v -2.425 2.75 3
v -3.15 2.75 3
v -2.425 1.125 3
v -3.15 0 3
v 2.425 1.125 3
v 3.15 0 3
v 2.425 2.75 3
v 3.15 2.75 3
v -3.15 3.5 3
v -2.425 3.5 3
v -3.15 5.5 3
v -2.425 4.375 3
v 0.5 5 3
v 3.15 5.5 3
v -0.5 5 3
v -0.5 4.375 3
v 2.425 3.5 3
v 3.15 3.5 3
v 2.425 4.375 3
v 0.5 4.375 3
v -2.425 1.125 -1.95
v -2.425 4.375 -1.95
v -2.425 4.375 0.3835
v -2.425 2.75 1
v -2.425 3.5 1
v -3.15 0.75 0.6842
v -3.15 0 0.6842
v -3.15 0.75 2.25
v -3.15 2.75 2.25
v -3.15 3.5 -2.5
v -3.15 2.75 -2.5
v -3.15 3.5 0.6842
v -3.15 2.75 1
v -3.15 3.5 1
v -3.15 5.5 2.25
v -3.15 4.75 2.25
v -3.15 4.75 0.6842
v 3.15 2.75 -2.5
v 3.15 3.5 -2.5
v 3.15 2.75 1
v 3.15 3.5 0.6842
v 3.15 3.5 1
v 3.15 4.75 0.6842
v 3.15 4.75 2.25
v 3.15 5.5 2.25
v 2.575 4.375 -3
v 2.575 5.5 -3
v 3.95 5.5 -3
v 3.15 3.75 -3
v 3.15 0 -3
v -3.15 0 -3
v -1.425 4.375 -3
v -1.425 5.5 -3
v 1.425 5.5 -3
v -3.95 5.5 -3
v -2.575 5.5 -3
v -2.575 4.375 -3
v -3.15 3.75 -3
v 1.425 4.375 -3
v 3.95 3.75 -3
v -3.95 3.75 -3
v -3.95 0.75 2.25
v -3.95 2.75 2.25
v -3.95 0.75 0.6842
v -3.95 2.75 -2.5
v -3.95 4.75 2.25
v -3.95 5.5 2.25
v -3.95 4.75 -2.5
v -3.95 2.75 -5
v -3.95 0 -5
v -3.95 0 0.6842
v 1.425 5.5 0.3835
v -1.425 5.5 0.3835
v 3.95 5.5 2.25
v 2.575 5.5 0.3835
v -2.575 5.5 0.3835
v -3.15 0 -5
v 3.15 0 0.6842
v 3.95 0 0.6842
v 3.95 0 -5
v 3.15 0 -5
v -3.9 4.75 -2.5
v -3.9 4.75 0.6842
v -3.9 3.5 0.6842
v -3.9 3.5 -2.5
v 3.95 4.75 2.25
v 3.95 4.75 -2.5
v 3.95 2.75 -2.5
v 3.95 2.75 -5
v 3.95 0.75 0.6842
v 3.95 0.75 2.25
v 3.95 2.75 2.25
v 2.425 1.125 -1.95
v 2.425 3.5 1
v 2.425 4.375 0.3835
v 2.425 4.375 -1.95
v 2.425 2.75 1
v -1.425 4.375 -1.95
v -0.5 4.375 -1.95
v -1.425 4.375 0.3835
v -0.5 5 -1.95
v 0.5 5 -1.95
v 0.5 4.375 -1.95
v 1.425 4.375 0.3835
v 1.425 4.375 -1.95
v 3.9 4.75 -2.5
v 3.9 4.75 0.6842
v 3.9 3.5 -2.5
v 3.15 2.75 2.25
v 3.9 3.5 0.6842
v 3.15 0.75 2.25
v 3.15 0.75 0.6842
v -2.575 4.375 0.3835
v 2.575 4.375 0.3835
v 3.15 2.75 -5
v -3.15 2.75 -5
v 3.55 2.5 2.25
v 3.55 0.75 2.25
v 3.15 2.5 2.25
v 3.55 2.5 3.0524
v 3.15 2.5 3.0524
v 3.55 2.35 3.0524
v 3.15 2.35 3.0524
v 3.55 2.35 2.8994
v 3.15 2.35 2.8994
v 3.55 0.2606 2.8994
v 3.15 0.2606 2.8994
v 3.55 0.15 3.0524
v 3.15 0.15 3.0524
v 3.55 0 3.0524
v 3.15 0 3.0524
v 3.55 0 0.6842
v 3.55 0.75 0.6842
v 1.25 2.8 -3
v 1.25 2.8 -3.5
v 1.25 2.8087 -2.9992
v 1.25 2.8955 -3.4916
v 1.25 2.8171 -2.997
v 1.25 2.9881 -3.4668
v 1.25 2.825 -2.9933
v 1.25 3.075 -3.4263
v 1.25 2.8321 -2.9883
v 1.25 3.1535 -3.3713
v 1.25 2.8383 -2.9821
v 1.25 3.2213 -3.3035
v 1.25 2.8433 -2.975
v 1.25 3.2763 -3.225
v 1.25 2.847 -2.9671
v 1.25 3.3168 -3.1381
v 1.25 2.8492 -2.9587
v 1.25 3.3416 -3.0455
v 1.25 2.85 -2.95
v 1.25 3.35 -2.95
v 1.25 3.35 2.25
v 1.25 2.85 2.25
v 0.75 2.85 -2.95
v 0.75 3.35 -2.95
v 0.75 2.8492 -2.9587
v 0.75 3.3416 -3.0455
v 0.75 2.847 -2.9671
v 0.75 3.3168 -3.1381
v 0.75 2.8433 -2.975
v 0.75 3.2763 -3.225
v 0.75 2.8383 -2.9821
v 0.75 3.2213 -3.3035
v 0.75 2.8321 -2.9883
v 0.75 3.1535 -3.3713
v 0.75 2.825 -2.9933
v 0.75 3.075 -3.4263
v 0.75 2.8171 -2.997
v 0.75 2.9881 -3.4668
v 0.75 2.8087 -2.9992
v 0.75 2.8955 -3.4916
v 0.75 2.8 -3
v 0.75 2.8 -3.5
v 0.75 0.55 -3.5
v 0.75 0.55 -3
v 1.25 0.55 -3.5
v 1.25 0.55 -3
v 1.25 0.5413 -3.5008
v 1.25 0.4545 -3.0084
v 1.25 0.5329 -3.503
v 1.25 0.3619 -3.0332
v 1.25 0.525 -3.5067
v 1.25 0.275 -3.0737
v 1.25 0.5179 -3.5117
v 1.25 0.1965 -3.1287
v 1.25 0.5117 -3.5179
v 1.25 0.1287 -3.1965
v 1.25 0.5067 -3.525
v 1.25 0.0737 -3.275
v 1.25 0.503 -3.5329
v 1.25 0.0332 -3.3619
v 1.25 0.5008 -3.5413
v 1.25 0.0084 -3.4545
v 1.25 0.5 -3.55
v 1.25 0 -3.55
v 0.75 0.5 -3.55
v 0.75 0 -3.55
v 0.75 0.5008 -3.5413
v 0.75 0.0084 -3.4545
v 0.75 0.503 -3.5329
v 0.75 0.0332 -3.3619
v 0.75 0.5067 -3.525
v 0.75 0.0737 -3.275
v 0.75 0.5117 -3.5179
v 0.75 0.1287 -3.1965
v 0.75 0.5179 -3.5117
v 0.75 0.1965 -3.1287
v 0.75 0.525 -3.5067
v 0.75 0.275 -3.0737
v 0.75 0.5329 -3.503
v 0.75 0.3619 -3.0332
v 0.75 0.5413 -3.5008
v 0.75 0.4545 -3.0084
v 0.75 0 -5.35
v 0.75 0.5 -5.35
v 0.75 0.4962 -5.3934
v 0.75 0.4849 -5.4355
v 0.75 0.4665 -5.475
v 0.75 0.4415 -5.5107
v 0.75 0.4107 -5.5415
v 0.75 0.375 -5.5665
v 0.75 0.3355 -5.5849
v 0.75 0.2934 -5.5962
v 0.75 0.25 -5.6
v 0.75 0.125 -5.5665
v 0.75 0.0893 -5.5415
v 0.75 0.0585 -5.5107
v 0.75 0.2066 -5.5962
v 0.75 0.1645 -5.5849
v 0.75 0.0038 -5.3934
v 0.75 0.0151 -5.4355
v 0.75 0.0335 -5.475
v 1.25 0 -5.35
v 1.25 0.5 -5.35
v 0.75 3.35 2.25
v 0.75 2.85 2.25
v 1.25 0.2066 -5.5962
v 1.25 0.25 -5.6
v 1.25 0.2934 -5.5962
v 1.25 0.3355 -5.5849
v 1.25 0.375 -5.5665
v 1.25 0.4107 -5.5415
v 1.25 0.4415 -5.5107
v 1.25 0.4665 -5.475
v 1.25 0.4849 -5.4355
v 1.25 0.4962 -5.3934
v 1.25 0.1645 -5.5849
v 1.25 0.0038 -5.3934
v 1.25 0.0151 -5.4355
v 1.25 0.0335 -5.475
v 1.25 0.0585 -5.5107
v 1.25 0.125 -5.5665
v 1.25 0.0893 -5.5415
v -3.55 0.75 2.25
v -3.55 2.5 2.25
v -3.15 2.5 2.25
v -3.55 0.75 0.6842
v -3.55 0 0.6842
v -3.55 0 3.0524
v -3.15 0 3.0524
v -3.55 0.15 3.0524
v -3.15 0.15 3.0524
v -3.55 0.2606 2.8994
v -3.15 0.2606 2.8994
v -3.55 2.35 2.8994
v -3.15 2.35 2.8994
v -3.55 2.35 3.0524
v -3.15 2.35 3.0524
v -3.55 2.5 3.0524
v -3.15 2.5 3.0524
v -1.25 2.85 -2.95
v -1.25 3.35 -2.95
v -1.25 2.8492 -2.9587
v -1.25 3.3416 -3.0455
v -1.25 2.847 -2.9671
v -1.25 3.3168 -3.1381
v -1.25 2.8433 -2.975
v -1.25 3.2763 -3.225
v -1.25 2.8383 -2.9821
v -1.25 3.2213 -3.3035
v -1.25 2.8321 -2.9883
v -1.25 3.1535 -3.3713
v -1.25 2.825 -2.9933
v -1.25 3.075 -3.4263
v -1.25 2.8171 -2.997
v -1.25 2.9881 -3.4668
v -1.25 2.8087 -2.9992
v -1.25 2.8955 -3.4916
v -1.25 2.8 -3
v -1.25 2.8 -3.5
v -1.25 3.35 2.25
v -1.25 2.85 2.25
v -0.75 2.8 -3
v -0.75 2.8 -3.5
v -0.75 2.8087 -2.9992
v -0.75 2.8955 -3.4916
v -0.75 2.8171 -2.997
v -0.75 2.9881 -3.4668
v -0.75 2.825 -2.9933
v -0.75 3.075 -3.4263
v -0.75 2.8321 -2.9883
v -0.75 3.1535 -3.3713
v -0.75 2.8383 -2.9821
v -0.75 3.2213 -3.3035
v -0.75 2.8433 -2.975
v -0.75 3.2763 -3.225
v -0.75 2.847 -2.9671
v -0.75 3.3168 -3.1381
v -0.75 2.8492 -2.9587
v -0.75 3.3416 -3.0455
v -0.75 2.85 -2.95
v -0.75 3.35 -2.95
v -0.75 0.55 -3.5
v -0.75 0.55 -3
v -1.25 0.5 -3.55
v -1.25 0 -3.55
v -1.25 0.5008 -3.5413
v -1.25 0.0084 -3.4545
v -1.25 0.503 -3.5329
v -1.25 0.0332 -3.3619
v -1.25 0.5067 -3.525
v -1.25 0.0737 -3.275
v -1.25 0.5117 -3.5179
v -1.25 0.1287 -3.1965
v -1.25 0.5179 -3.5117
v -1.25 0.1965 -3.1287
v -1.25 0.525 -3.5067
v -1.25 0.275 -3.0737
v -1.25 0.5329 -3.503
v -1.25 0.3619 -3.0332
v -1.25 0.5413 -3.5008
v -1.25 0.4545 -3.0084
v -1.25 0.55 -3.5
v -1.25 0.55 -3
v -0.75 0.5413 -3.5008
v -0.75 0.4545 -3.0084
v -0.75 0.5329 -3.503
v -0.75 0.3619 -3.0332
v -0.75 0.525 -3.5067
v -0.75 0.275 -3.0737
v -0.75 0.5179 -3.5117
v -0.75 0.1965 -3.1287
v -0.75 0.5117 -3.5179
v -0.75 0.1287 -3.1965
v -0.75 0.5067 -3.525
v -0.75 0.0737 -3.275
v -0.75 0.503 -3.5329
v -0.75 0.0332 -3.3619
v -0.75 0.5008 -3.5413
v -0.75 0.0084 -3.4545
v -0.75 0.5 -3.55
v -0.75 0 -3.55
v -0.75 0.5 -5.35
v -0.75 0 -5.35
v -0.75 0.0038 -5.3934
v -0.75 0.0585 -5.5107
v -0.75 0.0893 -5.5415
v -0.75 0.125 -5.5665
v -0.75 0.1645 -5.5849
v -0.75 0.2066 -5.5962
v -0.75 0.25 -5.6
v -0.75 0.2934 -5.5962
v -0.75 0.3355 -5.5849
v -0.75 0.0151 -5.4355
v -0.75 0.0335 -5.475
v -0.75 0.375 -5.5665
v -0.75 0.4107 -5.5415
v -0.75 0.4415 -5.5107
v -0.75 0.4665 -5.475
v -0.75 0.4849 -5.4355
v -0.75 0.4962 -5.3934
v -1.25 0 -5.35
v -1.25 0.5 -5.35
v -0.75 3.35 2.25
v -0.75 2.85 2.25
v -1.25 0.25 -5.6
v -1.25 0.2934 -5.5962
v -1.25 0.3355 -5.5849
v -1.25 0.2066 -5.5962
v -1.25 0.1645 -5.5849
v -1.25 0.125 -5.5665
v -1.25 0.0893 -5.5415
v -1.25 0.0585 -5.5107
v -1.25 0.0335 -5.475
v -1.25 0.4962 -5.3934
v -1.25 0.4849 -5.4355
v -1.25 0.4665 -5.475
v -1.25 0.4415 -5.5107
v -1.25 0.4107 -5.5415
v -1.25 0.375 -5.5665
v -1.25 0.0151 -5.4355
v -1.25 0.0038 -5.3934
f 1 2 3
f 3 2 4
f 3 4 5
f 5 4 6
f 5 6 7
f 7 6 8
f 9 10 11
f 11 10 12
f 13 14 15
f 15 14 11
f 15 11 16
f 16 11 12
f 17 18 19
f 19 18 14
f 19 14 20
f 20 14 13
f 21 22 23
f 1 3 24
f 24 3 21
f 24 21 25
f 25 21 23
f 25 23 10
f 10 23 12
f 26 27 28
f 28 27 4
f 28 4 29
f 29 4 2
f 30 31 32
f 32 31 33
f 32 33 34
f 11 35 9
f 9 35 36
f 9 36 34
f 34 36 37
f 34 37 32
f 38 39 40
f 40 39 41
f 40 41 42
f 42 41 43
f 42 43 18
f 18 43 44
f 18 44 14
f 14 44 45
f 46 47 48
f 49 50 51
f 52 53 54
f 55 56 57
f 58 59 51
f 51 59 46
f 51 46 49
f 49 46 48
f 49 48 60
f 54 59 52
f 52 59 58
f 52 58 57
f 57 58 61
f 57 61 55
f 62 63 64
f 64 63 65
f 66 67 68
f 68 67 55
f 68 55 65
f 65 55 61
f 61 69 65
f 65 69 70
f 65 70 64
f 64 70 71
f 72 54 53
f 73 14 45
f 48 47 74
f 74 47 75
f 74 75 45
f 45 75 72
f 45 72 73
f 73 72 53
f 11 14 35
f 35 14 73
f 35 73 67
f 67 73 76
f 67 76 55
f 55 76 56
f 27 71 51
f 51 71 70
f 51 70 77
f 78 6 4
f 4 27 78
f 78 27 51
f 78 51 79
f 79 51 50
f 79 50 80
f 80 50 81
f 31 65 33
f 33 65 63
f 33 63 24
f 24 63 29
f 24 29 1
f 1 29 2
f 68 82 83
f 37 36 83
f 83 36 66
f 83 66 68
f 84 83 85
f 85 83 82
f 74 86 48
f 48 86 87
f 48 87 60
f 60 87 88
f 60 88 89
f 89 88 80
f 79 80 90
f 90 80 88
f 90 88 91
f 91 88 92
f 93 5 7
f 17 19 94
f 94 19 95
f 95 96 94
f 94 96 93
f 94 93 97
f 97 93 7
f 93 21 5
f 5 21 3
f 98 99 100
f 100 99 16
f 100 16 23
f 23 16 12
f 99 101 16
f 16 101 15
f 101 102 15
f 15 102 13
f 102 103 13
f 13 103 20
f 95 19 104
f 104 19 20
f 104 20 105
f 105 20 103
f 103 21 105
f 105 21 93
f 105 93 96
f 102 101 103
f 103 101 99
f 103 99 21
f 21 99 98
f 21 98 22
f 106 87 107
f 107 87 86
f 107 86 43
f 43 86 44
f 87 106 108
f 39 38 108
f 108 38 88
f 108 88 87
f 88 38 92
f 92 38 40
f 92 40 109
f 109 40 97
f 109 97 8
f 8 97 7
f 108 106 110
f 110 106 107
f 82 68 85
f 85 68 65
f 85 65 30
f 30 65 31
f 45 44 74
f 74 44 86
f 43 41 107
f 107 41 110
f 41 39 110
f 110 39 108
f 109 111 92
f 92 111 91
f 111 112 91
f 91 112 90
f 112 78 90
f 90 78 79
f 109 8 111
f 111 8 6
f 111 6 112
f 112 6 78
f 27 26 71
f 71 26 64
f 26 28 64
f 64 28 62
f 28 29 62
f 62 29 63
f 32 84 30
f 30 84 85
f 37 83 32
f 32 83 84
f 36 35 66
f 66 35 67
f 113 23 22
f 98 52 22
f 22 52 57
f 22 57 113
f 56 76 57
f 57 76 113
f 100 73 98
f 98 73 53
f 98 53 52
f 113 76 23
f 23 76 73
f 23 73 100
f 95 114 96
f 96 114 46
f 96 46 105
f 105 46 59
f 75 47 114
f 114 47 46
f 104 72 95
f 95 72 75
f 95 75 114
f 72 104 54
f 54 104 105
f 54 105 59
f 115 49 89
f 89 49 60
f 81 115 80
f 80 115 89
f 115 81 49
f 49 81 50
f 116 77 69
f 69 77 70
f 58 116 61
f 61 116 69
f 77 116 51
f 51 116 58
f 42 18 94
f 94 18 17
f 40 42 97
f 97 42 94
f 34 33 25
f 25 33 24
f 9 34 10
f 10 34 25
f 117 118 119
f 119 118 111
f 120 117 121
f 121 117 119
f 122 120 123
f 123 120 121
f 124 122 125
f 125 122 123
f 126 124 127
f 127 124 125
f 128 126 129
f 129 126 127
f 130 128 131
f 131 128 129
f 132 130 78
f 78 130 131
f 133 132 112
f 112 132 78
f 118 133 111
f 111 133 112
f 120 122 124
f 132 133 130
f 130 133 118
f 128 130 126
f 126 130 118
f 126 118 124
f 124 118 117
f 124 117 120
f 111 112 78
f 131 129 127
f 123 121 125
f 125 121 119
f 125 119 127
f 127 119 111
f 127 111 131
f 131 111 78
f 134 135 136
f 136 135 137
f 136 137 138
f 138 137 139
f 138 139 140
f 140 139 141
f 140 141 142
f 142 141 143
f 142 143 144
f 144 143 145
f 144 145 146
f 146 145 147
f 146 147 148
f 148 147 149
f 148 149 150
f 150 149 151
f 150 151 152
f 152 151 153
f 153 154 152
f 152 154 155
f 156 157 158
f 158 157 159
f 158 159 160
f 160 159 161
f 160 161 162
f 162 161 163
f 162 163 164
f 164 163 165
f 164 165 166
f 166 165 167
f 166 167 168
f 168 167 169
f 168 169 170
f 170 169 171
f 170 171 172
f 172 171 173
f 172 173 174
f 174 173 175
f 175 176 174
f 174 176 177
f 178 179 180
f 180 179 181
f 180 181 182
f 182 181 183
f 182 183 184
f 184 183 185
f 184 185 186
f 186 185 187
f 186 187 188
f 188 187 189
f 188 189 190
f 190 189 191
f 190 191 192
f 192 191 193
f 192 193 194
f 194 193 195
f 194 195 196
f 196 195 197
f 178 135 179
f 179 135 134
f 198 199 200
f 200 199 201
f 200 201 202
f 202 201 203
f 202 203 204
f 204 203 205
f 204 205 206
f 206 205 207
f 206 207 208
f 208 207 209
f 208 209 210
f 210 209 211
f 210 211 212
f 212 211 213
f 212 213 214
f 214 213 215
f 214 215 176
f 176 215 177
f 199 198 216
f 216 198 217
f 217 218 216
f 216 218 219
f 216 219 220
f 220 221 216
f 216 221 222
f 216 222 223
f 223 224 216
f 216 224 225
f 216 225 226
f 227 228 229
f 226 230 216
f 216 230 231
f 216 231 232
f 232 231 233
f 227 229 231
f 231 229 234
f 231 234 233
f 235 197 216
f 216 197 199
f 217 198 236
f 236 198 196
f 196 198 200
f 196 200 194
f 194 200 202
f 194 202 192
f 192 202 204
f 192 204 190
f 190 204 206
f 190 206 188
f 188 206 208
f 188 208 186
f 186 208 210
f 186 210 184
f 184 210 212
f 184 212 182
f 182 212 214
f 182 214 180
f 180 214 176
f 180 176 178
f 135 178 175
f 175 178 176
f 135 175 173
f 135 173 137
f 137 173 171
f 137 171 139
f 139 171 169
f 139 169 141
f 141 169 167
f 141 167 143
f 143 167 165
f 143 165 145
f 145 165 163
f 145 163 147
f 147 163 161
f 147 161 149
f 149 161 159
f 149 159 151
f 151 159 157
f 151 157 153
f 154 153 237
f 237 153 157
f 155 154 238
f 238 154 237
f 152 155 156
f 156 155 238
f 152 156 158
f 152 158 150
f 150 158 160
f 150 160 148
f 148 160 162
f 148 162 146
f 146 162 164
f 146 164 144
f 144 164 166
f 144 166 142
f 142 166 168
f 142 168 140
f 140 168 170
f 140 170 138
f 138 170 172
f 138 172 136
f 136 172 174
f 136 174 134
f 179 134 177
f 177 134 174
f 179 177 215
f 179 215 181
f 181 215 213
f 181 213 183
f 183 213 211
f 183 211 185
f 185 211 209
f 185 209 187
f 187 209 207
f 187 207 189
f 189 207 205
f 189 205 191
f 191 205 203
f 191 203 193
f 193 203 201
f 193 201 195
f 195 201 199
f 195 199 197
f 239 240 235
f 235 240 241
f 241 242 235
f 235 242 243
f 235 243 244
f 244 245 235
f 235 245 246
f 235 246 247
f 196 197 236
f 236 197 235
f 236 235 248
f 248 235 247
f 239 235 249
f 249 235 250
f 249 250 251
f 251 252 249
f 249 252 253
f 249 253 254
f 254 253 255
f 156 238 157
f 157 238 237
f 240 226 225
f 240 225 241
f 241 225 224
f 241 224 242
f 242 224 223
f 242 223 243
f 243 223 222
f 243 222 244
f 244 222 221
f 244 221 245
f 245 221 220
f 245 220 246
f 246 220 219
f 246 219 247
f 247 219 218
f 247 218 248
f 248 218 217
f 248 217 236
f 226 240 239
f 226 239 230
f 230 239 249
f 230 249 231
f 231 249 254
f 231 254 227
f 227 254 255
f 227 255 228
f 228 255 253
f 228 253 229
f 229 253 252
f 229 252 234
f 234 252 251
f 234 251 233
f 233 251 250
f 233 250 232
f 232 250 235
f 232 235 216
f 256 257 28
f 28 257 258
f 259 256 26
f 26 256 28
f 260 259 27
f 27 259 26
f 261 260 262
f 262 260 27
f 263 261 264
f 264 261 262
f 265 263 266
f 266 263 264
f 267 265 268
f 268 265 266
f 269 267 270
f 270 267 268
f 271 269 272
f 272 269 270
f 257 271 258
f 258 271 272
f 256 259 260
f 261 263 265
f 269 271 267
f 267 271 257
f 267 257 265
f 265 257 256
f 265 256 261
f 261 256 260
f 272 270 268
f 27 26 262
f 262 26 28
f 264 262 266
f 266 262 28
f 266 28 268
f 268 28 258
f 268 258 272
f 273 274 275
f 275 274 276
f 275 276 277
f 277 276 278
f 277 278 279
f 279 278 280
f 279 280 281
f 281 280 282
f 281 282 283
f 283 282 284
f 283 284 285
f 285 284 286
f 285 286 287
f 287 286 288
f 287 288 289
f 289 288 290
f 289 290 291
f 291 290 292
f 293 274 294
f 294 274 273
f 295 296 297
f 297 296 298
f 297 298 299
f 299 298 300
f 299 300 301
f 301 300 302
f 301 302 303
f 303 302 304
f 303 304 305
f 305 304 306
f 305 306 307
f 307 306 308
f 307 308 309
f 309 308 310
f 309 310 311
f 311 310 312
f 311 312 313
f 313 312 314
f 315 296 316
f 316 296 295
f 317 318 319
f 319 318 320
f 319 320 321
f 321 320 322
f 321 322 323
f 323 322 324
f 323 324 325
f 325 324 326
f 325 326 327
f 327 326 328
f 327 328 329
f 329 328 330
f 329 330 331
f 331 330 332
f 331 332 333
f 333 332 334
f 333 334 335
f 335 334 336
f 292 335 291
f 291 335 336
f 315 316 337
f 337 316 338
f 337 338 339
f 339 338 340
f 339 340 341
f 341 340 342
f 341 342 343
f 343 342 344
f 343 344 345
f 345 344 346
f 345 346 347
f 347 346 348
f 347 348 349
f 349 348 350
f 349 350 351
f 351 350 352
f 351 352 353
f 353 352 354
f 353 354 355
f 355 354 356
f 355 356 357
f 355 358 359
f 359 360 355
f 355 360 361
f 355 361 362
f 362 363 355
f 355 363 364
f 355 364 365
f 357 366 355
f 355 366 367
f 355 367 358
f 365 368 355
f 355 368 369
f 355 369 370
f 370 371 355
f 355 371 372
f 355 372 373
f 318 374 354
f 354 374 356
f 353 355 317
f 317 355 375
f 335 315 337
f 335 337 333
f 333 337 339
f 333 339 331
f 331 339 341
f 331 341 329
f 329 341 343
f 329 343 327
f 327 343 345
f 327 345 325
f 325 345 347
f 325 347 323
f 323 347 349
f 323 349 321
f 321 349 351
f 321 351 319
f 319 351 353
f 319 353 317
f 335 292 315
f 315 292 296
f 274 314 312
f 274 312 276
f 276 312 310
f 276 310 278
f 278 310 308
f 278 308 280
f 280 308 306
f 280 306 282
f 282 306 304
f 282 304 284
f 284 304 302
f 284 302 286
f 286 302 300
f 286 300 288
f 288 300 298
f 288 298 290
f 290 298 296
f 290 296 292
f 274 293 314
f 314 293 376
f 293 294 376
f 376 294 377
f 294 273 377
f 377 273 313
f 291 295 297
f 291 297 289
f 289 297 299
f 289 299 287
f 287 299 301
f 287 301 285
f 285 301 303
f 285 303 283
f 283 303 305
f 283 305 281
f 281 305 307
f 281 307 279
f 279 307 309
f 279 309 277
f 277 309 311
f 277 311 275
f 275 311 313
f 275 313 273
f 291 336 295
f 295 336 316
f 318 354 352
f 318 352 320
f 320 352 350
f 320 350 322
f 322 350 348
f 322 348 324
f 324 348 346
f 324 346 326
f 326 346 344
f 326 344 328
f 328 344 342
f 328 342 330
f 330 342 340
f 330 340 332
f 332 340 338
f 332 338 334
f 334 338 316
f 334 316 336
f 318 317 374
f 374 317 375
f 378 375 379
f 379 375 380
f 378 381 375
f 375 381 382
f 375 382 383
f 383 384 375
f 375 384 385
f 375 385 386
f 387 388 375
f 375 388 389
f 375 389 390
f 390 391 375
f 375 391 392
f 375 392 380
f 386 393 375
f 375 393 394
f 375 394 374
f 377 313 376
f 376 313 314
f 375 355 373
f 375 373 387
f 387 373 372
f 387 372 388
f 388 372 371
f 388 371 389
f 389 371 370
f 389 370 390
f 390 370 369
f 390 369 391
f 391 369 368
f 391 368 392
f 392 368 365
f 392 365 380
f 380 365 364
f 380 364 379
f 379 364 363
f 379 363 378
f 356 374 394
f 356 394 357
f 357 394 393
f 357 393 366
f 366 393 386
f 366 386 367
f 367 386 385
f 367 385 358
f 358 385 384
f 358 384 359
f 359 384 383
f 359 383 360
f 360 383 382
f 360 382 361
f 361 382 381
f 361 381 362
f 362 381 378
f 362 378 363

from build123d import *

# Parameters (mm, degrees)
SKETCH1_W           = 7.9
SKETCH1_H           = 6
BOSS_EXTRUDE1_DEPTH = 5.5
CUT_EXTRUDE1_DEPTH  = 4.95
SKETCH3_W           = 5.5
SKETCH3_H           = 2
CUT_EXTRUDE2_DEPTH  = 0.05
CUT_EXTRUDE3_DEPTH  = 0.8
SKETCH5_W           = 1.15
SKETCH5_H           = 3.383478064
CUT_EXTRUDE4_DEPTH  = 1.125
BOSS_EXTRUDE2_DEPTH = 0.8
SKETCH7_W           = 2
SKETCH7_H           = 0.75
CUT_EXTRUDE5_DEPTH  = 5.575
BOSS_EXTRUDE4_DEPTH = 0.4
BASE_FLANGE1_DEPTH  = 0.25
BOSS_EXTRUDE5_DEPTH = 0.4
FILLET1_R           = 0.25


# Sheet-metal steps are written as plain solids
with BuildPart() as part:
    # Sketch1 → Boss-Extrude1 (new body)
    with BuildSketch(Plane(origin=(0, 0, 0), x_dir=(1, 0, 0), z_dir=(0, 1, 0))):
        Rectangle(SKETCH1_W, SKETCH1_H)
    extrude(amount=BOSS_EXTRUDE1_DEPTH)

    # Sketch2 → Cut-Extrude1 (cut)
    with BuildSketch(Plane.XY.offset(3)):
        Polygon((-2.425, 4.375), (-0.5, 4.375), (-0.5, 5), (0.5, 5), (0.5, 4.375), (2.425, 4.375), (2.425, 1.125), (-2.425, 1.125), align=None)
    extrude(amount=-CUT_EXTRUDE1_DEPTH, mode=Mode.SUBTRACT)

    # Sketch3 → Cut-Extrude2 (cut)
    with BuildSketch(Plane(origin=(3.95, 0, 0), x_dir=(0, 0, -1), z_dir=(1, 0, 0))):
        with Locations((-0.25, 3.75)):
            Rectangle(SKETCH3_W, SKETCH3_H)
    cut_extrude2 = extrude(amount=-CUT_EXTRUDE2_DEPTH, mode=Mode.SUBTRACT)

    # Mirror1: Cut-Extrude2 across plane
    add(cut_extrude2.mirror(Plane(origin=(0, 0, 0), x_dir=(0, 0, 1), z_dir=(1, 0, 0))), mode=Mode.SUBTRACT)

    # Sketch4 → Cut-Extrude3 (cut)
    with BuildSketch(Plane(origin=(3.95, 0, 0), x_dir=(0, 0, -1), z_dir=(1, 0, 0))):
        Polygon((-2.25, 5.5), (-2.25, 4.75), (-0.684226185, 4.75), (-0.684226185, 3.5), (2.5, 3.5), (2.5, 2.75), (-2.25, 2.75), (-2.25, 0.75), (-0.684226185, 0.75), (-0.684226185, 0), (-3, 0), (-3, 5.5), align=None)
    cut_extrude3 = extrude(amount=-CUT_EXTRUDE3_DEPTH, mode=Mode.SUBTRACT)

    # Mirror2: Cut-Extrude3 across plane
    add(cut_extrude3.mirror(Plane(origin=(0, 0, 0), x_dir=(0, 0, 1), z_dir=(1, 0, 0))), mode=Mode.SUBTRACT)

    # Sketch5 → Cut-Extrude4 (cut)
    with BuildSketch(Plane(origin=(0, 5.5, 0), x_dir=(1, 0, 0), z_dir=(0, 1, 0))):
        with Locations((-2, 1.308260968)):
            Rectangle(SKETCH5_W, SKETCH5_H)
        with Locations((2, 1.308260968)):
            Rectangle(SKETCH5_W, SKETCH5_H)
    extrude(amount=-CUT_EXTRUDE4_DEPTH, mode=Mode.SUBTRACT)

    # Sketch6 → Boss-Extrude2 (add)
    with BuildSketch(Plane(origin=(3.95, 0, 0), x_dir=(0, 0, -1), z_dir=(1, 0, 0))):
        Polygon((3, 3.75), (5, 2.75), (5, 0), (3, 0), align=None)
    boss_extrude2 = extrude(amount=-BOSS_EXTRUDE2_DEPTH)

    # Mirror3: Boss-Extrude2 across plane
    add(boss_extrude2.mirror(Plane(origin=(0, 0, 0), x_dir=(0, 0, 1), z_dir=(1, 0, 0))))

    # Sketch7 → Cut-Extrude5 (cut)
    with BuildSketch(Plane(origin=(3.15, 0, 0), x_dir=(0, 0, -1), z_dir=(1, 0, 0))):
        with Locations((-2, 3.125)):
            Rectangle(SKETCH7_W, SKETCH7_H)
    cut_extrude5 = extrude(amount=-CUT_EXTRUDE5_DEPTH, mode=Mode.SUBTRACT)

    # Mirror4: Cut-Extrude5 across plane
    add(cut_extrude5.mirror(Plane(origin=(0, 0, 0), x_dir=(0, 0, 1), z_dir=(1, 0, 0))), mode=Mode.SUBTRACT)


with BuildPart() as body_2:
    # Sketch8 → Boss-Extrude4 (new body)
    with BuildSketch(Plane(origin=(3.15, 0, 0), x_dir=(0, 0, -1), z_dir=(1, 0, 0))):
        Polygon((-2.25, 2.5), (-3.05240723, 2.5), (-3.05240723, 2.35), (-2.899443331, 2.35), (-2.899443331, 0.260631692), (-3.05240723, 0.15), (-3.05240723, 0), (-0.684226185, 0), (-0.684226185, 0.75), (-2.25, 0.75), align=None)
    extrude(amount=BOSS_EXTRUDE4_DEPTH)


with BuildPart() as body_3:
    # Sketch9 → Base-Flange1 (new, symmetric)
    with BuildSketch(Plane(origin=(1, 0, 0), x_dir=(0, 0, -1), z_dir=(1, 0, 0))):
        with BuildLine():
            Line((-2.25, 2.85), (2.95, 2.85))
            ThreePointArc((2.95, 2.85), (2.985355339, 2.835355339), (3, 2.8))
            Line((3, 2.8), (3, 0.55))
            ThreePointArc((3, 0.55), (3.16109127, 0.16109127), (3.55, 0))
            Line((3.55, 0), (5.6, 0))
            Line((5.6, 0), (5.6, 0.5))
            Line((5.6, 0.5), (3.55, 0.5))
            ThreePointArc((3.55, 0.5), (3.514644661, 0.514644661), (3.5, 0.55))
            Line((3.5, 0.55), (3.5, 2.8))
            ThreePointArc((3.5, 2.8), (3.33890873, 3.18890873), (2.95, 3.35))
            Line((2.95, 3.35), (-2.25, 3.35))
            Line((-2.25, 3.35), (-2.25, 2.85))
        make_face()
    extrude(amount=BASE_FLANGE1_DEPTH, both=True)

    # Fillet1
    fillet1_edges = [body_3.edges().sort_by_distance(p)[0] for p in [
        (1, 0, -5.6),
        (1, 0.5, -5.6),
    ]]
    fillet(fillet1_edges, radius=FILLET1_R - 0.0001)  # a hair under: the kernel refuses the full size


with BuildPart() as body_4:
    # Sketch14 → Boss-Extrude5 (new body)
    with BuildSketch(Plane(origin=(-3.15, 0, -3.15), x_dir=(0, 0, -1), z_dir=(1, 0, 0))):
        Polygon((-5.4, 2.5), (-6.20240723, 2.5), (-6.20240723, 2.35), (-6.049443331, 2.35), (-6.049443331, 0.260631692), (-6.20240723, 0.15), (-6.20240723, 0), (-3.834226185, 0), (-3.834226185, 0.75), (-5.4, 0.75), align=None)
    extrude(amount=-BOSS_EXTRUDE5_DEPTH)


with BuildPart() as body_5:
    # Mirror7: mirrored copy
    add(body_3.part.mirror(Plane(origin=(0, 0, 0), x_dir=(0, 0, 1), z_dir=(1, 0, 0))))


solid = Compound([part.part, body_2.part, body_3.part, body_4.part, body_5.part])
